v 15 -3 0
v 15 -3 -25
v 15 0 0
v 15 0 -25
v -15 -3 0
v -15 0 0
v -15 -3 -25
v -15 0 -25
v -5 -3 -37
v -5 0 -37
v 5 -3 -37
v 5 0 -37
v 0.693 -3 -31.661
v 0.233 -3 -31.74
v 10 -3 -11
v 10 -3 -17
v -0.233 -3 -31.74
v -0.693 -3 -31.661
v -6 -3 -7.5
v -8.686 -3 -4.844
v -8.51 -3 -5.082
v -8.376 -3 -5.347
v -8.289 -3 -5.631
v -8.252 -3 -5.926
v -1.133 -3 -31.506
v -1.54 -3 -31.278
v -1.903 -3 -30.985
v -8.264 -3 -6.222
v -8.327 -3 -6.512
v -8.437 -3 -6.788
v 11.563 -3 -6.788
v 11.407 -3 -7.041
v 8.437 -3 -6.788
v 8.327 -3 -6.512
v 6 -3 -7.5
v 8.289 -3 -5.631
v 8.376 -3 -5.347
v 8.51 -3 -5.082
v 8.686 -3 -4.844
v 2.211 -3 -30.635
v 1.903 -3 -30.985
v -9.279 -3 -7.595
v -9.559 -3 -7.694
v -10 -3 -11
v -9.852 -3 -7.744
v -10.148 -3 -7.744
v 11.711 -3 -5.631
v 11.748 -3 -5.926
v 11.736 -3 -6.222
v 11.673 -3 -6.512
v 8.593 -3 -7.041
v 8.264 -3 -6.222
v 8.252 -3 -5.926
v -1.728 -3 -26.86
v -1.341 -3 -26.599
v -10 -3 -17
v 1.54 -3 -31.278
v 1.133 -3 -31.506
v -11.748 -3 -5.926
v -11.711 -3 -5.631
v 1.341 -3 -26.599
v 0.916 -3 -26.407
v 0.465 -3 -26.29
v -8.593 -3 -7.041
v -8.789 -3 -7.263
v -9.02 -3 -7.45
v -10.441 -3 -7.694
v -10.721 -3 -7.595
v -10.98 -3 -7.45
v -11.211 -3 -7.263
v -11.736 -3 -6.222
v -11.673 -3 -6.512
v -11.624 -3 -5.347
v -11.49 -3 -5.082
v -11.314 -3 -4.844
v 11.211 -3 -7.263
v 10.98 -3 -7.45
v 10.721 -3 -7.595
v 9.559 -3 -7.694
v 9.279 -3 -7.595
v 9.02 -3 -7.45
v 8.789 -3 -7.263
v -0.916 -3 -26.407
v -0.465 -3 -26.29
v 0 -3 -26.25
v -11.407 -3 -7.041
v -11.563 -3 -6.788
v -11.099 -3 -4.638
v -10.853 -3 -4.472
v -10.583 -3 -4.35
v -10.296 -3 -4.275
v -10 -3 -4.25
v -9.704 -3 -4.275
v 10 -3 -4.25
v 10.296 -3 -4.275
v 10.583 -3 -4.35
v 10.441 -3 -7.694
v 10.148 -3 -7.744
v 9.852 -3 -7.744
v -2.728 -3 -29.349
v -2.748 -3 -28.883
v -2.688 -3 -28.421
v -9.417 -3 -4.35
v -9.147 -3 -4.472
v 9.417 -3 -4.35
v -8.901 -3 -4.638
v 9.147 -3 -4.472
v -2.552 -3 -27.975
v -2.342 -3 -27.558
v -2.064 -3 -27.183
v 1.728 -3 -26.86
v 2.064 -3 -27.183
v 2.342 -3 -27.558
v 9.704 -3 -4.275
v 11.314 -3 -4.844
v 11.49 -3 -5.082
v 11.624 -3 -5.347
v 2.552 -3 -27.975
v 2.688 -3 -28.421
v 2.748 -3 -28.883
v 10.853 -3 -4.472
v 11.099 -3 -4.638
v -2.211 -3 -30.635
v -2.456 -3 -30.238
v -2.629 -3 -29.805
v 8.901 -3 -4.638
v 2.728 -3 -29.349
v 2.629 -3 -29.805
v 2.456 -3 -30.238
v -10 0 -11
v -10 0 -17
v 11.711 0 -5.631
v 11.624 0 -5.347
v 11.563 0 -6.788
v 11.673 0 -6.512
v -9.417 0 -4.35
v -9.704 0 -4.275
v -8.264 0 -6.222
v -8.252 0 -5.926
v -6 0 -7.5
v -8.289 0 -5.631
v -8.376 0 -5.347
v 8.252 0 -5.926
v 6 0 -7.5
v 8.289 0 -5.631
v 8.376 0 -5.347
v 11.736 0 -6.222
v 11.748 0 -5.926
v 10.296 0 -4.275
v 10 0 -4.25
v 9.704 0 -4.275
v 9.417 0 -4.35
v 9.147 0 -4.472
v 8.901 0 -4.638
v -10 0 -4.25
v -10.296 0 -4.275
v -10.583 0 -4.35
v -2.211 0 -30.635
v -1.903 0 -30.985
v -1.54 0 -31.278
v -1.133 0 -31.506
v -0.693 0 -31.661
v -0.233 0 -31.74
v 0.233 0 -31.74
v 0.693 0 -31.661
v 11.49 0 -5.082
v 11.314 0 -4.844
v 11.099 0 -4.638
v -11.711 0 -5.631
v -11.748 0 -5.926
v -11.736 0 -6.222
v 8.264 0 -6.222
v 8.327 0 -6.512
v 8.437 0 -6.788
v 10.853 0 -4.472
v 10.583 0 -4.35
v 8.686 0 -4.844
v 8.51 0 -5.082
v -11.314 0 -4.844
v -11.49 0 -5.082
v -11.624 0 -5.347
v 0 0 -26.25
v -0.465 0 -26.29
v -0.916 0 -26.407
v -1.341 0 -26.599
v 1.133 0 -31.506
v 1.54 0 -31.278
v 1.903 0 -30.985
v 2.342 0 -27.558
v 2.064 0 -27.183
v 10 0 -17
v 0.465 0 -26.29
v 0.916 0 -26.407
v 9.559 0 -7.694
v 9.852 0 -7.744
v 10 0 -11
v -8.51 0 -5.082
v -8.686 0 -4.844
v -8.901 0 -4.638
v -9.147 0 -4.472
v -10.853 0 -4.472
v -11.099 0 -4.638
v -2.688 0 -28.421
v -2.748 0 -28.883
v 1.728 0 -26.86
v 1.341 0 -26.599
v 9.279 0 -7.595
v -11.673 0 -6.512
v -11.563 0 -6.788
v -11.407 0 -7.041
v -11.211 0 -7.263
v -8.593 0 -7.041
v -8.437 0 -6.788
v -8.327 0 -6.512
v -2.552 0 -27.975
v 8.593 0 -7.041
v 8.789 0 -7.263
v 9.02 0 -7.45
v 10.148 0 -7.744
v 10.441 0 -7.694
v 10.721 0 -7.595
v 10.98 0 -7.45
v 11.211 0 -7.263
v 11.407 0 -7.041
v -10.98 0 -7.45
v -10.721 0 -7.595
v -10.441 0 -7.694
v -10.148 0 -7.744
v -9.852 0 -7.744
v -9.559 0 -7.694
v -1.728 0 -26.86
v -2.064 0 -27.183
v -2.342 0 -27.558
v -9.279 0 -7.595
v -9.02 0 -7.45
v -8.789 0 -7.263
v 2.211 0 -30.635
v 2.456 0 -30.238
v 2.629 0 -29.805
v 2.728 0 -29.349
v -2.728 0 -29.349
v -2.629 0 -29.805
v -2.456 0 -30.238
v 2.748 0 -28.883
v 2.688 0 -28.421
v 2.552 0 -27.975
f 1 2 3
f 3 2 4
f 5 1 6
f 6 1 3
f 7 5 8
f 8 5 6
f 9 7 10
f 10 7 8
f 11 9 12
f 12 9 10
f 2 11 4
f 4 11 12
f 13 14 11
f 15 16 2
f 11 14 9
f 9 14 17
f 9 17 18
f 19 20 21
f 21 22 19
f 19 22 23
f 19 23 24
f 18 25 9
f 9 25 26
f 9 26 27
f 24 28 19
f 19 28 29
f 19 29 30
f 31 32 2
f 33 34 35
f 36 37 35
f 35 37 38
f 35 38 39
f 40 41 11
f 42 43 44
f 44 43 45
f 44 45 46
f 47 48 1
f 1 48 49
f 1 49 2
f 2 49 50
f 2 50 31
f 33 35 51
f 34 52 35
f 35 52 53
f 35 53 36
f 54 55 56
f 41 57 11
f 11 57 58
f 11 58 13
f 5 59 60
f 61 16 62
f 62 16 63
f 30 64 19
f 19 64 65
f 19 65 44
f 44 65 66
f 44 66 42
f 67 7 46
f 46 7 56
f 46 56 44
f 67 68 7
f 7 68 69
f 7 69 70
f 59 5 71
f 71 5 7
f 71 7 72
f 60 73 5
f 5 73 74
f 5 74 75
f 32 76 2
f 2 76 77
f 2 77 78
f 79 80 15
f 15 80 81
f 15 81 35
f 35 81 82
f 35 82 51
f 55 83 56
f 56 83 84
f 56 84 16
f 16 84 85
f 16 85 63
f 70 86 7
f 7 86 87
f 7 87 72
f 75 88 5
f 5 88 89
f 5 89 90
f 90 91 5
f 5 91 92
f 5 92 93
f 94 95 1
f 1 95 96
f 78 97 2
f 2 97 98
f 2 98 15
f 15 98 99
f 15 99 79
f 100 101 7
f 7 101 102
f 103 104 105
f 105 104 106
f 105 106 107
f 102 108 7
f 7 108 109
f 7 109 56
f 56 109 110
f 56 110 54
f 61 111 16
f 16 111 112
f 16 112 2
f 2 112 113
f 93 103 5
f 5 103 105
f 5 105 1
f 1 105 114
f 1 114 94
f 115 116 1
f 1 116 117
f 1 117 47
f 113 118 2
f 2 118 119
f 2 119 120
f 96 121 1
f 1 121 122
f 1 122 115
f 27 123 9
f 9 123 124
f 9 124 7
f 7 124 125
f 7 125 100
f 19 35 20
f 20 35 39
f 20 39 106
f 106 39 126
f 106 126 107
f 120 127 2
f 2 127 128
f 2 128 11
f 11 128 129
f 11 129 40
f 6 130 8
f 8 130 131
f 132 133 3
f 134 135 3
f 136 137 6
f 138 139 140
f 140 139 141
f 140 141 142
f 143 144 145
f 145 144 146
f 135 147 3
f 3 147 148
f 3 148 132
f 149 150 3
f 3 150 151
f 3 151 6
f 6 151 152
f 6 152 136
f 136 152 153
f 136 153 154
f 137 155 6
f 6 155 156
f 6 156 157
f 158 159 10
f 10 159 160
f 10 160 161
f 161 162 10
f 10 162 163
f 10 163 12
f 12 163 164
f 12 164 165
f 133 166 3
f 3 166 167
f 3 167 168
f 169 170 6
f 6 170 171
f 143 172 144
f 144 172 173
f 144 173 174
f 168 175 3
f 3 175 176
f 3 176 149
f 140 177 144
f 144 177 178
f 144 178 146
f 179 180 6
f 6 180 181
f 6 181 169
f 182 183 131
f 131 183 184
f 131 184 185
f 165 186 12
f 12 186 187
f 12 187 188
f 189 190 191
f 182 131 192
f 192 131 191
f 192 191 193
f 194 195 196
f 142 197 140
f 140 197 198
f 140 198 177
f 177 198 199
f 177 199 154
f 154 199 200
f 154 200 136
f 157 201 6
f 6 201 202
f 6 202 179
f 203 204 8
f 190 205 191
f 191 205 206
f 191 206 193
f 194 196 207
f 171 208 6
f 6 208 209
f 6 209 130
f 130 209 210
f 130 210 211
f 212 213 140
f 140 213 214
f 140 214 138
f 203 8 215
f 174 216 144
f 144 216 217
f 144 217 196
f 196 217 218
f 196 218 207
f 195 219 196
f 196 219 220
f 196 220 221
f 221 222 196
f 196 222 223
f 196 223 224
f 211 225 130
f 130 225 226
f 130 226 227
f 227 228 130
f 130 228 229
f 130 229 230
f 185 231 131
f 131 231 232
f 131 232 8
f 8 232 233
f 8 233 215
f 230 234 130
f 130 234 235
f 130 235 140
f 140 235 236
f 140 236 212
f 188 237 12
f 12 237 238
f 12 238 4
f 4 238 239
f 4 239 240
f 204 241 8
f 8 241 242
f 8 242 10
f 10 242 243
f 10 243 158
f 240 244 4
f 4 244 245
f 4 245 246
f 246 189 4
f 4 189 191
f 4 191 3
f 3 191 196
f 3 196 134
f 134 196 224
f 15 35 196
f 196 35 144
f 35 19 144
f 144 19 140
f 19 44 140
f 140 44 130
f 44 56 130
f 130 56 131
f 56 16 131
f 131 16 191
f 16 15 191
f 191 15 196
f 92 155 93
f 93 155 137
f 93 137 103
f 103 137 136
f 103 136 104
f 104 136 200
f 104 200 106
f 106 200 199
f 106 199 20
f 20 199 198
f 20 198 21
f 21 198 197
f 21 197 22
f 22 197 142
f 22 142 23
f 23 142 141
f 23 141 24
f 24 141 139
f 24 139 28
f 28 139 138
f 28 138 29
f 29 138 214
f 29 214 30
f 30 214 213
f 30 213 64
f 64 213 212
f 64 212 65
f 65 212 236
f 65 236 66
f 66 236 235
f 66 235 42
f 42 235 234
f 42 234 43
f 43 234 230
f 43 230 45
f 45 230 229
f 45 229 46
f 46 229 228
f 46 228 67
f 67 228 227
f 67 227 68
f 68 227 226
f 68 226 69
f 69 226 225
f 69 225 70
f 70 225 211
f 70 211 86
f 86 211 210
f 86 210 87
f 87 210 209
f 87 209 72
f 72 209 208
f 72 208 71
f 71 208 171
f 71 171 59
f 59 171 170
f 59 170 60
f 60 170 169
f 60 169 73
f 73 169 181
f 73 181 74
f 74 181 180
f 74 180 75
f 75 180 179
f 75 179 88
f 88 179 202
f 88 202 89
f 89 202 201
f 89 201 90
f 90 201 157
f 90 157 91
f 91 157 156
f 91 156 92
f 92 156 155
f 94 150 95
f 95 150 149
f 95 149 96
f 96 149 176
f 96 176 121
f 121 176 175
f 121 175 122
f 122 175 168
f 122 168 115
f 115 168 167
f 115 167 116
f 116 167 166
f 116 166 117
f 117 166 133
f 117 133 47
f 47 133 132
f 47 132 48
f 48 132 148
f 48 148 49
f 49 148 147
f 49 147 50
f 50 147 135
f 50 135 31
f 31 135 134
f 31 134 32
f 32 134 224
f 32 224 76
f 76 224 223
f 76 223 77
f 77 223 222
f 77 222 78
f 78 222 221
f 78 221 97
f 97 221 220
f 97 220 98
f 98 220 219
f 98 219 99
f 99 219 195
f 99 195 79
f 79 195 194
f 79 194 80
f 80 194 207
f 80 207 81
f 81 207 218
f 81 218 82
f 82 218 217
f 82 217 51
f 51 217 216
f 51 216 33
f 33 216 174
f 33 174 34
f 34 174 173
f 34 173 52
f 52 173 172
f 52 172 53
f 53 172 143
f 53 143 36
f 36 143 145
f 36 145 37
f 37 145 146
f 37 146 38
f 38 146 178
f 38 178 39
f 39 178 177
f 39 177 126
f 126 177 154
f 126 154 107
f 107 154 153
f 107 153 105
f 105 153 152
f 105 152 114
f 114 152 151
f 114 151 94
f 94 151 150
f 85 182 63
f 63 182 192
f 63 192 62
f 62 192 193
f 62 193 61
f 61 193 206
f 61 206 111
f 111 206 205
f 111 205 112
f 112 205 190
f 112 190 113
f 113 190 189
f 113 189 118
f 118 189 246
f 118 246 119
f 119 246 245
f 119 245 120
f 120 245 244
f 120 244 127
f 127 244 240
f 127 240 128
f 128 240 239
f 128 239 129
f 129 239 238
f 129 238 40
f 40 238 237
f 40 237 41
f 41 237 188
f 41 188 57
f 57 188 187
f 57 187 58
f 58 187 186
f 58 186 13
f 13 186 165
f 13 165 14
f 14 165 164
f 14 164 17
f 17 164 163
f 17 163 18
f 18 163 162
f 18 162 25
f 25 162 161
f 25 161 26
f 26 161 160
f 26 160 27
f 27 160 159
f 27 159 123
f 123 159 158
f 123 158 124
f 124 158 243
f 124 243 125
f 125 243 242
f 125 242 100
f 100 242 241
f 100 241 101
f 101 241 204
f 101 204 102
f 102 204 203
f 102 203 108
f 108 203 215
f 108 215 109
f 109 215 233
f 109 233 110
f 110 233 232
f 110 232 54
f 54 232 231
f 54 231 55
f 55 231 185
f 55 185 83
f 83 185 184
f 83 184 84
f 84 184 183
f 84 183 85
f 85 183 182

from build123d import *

# Parameters (mm, degrees)
SKETCH_2_R      = 1.75
SKETCH_2_R_2    = 2.75
EXTRUDE_2_DEPTH = 3


with BuildPart() as part:
    # 草图2 → 凸台-拉伸2 (new body)
    with BuildSketch(Plane(origin=(0, 0, 0), x_dir=(1, 0, 0), z_dir=(0, 1, 0))):
        Polygon((-15, 25), (-15, 0), (15, 0), (15, 25), (5, 37), (-5, 37), align=None)
        with Locations(Location((-10, 6, 0), (0, 0, 270))):
            Circle(SKETCH_2_R, mode=Mode.SUBTRACT)
        with Locations(Location((10, 6, 0), (0, 0, 270))):
            Circle(SKETCH_2_R, mode=Mode.SUBTRACT)
        with Locations(Location((0, 29, 0), (0, 0, 270))):
            Circle(SKETCH_2_R_2, mode=Mode.SUBTRACT)
        Polygon((-10, 17), (10, 17), (10, 11), (6, 7.5), (-6, 7.5), (-10, 11), align=None, mode=Mode.SUBTRACT)
    extrude(amount=-EXTRUDE_2_DEPTH)


solid = part.part
